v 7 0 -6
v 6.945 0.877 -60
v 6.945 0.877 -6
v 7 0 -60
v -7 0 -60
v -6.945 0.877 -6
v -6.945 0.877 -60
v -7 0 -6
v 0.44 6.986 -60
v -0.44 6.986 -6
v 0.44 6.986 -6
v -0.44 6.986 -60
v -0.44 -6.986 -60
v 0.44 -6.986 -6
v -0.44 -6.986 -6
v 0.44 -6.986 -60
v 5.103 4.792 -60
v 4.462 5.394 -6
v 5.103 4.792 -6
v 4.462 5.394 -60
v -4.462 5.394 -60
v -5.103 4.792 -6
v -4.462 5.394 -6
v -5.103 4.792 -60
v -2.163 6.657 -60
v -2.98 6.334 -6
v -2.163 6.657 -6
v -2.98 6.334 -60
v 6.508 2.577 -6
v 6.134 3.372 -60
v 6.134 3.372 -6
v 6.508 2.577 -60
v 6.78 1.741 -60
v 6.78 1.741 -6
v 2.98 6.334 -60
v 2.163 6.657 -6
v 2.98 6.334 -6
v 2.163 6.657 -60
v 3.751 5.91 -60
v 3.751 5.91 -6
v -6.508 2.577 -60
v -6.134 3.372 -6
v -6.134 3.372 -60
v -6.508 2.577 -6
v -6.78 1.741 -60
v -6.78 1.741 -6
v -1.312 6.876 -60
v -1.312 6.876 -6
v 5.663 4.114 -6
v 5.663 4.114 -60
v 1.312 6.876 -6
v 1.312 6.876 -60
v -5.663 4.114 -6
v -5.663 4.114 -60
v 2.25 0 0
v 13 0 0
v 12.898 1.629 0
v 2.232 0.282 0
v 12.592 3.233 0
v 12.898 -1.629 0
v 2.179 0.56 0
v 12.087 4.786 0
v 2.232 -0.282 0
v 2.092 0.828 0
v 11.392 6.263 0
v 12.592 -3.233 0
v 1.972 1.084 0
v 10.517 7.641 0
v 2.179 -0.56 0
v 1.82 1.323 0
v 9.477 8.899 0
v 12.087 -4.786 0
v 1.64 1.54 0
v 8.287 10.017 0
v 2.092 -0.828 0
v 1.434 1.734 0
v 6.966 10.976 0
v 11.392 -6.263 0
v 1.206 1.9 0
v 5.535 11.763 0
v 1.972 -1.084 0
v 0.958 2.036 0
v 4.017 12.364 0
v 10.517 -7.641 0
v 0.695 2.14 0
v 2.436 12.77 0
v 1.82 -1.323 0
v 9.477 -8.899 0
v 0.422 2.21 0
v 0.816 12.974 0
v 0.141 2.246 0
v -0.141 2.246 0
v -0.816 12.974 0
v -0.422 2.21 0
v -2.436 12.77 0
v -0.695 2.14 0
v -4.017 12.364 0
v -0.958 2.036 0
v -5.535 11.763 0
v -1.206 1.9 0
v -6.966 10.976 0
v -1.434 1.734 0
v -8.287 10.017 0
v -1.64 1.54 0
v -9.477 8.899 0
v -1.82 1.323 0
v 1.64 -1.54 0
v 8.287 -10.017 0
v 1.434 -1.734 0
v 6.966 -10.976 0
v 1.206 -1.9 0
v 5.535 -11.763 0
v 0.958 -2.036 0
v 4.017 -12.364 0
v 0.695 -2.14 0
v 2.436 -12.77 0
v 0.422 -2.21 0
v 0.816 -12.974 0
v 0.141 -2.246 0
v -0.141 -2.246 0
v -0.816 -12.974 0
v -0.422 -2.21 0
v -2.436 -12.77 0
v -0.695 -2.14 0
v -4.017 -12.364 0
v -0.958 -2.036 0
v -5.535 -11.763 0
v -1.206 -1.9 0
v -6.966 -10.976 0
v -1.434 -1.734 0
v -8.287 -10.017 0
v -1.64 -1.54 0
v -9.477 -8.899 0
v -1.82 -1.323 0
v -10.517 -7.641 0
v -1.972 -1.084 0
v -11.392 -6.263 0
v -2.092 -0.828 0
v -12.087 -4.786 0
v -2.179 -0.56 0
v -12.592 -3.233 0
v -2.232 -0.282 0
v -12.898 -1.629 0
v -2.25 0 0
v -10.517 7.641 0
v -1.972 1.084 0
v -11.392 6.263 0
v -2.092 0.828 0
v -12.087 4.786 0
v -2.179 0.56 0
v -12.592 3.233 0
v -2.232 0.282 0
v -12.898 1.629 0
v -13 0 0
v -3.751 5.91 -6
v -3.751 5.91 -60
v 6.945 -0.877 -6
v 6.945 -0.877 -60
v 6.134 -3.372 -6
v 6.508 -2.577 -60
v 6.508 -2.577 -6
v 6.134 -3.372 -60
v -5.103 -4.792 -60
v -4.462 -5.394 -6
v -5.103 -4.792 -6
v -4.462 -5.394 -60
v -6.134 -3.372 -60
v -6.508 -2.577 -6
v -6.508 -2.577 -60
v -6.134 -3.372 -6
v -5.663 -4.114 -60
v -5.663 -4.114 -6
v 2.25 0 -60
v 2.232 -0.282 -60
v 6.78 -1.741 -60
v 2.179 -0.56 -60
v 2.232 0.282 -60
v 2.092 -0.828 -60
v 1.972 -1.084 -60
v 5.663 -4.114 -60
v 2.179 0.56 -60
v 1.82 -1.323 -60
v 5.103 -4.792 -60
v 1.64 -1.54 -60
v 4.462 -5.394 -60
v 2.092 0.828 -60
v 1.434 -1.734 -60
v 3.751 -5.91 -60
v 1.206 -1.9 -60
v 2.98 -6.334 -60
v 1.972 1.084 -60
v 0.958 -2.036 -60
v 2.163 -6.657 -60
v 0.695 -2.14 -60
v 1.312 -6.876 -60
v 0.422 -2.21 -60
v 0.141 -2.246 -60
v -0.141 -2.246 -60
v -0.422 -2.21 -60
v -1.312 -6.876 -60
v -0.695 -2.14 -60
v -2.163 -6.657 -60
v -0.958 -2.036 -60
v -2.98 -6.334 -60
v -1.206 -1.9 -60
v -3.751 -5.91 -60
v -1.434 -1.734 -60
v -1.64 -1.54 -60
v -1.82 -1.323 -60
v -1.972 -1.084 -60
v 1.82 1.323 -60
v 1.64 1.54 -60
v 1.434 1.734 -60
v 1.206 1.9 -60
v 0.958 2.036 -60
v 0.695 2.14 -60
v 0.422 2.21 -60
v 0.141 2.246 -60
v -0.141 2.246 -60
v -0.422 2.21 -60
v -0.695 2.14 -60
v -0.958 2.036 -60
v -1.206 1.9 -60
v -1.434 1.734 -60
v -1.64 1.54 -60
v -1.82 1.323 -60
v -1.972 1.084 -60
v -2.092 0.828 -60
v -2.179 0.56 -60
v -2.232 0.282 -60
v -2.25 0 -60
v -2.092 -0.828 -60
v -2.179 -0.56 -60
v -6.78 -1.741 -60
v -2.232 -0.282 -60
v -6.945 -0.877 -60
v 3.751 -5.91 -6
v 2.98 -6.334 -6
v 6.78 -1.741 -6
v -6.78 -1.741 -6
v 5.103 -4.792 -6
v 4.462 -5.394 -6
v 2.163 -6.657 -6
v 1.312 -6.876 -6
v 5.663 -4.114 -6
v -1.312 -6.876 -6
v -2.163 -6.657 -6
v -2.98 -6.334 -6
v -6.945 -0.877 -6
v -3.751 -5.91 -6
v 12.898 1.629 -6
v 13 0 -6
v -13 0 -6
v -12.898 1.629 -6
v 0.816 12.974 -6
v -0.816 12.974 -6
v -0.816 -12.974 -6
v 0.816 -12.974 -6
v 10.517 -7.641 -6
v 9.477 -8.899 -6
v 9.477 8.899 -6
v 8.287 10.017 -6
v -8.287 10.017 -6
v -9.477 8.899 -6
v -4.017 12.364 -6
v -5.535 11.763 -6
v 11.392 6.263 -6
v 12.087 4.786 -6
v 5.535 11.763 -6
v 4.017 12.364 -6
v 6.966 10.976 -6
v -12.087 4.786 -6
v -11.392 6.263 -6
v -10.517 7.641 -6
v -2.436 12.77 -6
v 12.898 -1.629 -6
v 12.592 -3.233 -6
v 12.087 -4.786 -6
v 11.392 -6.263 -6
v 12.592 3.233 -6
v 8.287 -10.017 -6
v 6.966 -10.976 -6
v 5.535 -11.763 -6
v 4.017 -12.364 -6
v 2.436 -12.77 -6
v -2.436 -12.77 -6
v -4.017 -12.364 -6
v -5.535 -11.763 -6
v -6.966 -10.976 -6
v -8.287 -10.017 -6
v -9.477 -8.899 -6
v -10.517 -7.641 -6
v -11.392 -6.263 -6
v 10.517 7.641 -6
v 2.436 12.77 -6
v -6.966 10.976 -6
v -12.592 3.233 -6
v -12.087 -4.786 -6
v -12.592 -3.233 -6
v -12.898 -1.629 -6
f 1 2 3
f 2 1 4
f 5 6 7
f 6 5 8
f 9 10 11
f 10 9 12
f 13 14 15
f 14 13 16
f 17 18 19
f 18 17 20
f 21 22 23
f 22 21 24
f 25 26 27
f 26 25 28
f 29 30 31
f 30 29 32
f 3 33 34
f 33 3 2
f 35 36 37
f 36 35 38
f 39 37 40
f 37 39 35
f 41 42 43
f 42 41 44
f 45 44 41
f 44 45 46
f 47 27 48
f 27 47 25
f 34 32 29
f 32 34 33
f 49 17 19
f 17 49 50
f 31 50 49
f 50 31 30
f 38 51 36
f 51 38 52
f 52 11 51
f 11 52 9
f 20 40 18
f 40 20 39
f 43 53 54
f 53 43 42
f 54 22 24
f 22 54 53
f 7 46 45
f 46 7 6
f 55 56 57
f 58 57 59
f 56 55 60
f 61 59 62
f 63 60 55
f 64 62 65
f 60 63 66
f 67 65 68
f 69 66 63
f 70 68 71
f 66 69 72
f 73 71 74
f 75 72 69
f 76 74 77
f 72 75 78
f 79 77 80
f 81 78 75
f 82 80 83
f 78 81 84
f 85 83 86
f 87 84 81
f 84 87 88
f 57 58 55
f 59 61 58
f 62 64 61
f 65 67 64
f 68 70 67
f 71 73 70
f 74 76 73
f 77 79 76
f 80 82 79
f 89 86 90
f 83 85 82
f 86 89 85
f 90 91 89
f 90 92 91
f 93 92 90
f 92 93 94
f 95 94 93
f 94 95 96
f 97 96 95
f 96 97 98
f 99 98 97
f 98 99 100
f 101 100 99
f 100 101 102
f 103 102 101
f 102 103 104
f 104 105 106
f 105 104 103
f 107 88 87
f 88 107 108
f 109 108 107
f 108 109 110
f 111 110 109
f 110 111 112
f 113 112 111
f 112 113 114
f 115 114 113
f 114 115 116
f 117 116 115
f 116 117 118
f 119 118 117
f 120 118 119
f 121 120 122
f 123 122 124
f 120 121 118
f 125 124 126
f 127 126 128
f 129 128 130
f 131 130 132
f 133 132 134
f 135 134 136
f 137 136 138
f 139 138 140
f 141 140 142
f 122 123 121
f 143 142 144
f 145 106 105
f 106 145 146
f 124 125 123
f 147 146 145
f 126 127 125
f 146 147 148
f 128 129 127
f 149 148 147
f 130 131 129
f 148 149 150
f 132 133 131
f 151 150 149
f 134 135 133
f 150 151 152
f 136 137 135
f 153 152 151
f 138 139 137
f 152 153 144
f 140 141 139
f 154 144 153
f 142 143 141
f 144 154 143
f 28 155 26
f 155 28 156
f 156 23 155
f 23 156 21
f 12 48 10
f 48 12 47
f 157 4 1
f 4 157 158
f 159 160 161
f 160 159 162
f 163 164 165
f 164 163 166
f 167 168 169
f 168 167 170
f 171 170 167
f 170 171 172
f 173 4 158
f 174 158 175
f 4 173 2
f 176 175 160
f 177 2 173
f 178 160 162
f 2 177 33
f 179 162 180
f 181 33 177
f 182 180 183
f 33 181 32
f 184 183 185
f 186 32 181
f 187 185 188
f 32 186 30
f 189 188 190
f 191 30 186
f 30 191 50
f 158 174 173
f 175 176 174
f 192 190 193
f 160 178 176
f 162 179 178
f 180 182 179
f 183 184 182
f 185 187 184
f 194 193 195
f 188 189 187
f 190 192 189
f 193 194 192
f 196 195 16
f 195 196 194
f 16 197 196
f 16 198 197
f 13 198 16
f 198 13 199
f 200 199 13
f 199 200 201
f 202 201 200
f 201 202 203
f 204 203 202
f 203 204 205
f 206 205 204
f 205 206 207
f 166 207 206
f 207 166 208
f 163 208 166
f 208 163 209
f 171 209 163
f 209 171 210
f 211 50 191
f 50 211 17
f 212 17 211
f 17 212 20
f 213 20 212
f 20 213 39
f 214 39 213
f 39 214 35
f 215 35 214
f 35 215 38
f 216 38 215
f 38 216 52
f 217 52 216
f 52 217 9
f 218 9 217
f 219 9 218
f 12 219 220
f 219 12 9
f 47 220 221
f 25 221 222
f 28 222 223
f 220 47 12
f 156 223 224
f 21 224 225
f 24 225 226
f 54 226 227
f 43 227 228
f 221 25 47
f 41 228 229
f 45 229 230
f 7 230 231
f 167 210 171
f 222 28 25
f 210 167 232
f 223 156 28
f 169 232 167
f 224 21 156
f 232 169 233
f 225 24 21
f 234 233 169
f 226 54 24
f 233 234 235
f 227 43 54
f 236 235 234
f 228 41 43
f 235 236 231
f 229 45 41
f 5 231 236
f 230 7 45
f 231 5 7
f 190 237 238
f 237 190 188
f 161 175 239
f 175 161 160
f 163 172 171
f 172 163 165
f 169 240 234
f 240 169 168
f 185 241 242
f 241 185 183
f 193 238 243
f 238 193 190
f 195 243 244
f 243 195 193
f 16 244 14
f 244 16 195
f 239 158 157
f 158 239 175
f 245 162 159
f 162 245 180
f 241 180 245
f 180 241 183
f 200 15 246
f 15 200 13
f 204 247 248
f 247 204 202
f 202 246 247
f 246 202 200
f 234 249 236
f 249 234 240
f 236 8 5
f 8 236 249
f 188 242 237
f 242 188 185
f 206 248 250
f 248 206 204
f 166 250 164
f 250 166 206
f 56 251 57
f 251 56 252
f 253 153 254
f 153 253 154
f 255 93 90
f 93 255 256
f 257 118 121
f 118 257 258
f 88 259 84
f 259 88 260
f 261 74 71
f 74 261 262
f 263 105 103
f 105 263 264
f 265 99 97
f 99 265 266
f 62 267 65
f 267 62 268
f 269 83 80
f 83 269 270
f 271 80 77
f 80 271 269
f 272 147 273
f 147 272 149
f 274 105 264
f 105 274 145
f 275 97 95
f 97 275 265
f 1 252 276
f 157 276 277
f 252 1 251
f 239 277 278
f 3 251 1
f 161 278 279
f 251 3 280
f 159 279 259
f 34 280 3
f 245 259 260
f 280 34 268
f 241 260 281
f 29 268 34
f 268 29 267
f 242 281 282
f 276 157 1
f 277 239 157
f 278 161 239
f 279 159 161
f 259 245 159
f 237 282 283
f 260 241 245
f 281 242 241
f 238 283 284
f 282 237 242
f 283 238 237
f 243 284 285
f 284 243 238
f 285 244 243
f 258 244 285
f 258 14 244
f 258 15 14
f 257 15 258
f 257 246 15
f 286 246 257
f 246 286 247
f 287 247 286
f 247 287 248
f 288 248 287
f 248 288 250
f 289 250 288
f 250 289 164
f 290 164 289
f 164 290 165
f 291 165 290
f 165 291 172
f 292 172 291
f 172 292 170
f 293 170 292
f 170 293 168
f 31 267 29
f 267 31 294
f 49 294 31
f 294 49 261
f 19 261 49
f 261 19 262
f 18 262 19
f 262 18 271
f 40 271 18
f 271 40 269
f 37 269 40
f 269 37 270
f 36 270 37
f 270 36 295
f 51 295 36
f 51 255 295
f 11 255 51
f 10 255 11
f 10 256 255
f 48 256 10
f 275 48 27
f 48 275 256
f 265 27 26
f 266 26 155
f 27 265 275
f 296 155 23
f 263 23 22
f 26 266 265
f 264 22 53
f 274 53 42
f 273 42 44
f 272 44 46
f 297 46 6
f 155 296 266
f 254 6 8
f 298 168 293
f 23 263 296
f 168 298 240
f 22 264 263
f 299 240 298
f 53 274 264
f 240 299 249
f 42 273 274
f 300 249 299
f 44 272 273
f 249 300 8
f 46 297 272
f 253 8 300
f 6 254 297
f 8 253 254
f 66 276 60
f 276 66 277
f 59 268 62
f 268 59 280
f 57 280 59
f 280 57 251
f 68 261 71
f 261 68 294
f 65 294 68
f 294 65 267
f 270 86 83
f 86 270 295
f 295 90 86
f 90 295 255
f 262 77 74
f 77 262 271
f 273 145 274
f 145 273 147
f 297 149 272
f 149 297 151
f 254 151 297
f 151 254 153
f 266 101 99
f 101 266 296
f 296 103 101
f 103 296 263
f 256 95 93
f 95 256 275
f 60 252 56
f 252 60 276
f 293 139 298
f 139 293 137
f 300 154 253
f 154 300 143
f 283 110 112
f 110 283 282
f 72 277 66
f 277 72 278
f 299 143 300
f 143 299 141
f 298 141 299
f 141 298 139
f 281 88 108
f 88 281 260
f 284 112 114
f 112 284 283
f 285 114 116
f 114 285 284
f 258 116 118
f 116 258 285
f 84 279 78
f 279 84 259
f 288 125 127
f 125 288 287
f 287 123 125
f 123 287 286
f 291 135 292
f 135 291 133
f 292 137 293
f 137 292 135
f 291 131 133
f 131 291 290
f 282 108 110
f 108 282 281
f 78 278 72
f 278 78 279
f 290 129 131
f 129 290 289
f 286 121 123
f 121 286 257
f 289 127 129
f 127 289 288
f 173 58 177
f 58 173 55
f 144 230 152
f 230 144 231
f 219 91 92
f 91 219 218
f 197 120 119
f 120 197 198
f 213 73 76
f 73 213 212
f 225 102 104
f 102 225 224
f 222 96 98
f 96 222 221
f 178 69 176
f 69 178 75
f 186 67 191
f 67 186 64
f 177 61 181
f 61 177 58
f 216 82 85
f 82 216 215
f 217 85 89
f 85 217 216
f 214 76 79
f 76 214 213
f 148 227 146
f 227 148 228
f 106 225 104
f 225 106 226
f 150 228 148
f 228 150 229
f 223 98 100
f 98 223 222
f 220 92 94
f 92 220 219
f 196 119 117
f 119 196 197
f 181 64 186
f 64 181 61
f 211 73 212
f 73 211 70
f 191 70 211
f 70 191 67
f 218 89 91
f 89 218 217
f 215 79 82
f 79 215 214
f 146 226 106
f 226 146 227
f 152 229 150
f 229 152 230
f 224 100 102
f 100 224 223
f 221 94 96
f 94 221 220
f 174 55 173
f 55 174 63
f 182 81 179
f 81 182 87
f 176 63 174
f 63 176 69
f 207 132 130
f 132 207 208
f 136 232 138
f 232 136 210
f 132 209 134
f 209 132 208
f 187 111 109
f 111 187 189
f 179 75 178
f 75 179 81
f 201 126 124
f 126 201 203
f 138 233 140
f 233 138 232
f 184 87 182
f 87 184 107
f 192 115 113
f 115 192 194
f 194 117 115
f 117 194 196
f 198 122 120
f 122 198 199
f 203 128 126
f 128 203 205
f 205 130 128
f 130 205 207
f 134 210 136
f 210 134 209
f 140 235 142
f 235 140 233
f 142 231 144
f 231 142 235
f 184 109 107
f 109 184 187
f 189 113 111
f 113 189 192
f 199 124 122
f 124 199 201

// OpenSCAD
$fn = 50;


difference() {
	union() {
		translate(v = [0, 0, -60.0000000000]) {
			cylinder(h = 60, r = 7.0000000000);
		}
		translate(v = [0, 0, -6.0000000000]) {
			cylinder(h = 6, r = 13.0000000000);
		}
	}
	union() {
		#translate(v = [0, 0, -60]) {
			cylinder(h = 60, r = 2.2500000000);
		}
	}
}
